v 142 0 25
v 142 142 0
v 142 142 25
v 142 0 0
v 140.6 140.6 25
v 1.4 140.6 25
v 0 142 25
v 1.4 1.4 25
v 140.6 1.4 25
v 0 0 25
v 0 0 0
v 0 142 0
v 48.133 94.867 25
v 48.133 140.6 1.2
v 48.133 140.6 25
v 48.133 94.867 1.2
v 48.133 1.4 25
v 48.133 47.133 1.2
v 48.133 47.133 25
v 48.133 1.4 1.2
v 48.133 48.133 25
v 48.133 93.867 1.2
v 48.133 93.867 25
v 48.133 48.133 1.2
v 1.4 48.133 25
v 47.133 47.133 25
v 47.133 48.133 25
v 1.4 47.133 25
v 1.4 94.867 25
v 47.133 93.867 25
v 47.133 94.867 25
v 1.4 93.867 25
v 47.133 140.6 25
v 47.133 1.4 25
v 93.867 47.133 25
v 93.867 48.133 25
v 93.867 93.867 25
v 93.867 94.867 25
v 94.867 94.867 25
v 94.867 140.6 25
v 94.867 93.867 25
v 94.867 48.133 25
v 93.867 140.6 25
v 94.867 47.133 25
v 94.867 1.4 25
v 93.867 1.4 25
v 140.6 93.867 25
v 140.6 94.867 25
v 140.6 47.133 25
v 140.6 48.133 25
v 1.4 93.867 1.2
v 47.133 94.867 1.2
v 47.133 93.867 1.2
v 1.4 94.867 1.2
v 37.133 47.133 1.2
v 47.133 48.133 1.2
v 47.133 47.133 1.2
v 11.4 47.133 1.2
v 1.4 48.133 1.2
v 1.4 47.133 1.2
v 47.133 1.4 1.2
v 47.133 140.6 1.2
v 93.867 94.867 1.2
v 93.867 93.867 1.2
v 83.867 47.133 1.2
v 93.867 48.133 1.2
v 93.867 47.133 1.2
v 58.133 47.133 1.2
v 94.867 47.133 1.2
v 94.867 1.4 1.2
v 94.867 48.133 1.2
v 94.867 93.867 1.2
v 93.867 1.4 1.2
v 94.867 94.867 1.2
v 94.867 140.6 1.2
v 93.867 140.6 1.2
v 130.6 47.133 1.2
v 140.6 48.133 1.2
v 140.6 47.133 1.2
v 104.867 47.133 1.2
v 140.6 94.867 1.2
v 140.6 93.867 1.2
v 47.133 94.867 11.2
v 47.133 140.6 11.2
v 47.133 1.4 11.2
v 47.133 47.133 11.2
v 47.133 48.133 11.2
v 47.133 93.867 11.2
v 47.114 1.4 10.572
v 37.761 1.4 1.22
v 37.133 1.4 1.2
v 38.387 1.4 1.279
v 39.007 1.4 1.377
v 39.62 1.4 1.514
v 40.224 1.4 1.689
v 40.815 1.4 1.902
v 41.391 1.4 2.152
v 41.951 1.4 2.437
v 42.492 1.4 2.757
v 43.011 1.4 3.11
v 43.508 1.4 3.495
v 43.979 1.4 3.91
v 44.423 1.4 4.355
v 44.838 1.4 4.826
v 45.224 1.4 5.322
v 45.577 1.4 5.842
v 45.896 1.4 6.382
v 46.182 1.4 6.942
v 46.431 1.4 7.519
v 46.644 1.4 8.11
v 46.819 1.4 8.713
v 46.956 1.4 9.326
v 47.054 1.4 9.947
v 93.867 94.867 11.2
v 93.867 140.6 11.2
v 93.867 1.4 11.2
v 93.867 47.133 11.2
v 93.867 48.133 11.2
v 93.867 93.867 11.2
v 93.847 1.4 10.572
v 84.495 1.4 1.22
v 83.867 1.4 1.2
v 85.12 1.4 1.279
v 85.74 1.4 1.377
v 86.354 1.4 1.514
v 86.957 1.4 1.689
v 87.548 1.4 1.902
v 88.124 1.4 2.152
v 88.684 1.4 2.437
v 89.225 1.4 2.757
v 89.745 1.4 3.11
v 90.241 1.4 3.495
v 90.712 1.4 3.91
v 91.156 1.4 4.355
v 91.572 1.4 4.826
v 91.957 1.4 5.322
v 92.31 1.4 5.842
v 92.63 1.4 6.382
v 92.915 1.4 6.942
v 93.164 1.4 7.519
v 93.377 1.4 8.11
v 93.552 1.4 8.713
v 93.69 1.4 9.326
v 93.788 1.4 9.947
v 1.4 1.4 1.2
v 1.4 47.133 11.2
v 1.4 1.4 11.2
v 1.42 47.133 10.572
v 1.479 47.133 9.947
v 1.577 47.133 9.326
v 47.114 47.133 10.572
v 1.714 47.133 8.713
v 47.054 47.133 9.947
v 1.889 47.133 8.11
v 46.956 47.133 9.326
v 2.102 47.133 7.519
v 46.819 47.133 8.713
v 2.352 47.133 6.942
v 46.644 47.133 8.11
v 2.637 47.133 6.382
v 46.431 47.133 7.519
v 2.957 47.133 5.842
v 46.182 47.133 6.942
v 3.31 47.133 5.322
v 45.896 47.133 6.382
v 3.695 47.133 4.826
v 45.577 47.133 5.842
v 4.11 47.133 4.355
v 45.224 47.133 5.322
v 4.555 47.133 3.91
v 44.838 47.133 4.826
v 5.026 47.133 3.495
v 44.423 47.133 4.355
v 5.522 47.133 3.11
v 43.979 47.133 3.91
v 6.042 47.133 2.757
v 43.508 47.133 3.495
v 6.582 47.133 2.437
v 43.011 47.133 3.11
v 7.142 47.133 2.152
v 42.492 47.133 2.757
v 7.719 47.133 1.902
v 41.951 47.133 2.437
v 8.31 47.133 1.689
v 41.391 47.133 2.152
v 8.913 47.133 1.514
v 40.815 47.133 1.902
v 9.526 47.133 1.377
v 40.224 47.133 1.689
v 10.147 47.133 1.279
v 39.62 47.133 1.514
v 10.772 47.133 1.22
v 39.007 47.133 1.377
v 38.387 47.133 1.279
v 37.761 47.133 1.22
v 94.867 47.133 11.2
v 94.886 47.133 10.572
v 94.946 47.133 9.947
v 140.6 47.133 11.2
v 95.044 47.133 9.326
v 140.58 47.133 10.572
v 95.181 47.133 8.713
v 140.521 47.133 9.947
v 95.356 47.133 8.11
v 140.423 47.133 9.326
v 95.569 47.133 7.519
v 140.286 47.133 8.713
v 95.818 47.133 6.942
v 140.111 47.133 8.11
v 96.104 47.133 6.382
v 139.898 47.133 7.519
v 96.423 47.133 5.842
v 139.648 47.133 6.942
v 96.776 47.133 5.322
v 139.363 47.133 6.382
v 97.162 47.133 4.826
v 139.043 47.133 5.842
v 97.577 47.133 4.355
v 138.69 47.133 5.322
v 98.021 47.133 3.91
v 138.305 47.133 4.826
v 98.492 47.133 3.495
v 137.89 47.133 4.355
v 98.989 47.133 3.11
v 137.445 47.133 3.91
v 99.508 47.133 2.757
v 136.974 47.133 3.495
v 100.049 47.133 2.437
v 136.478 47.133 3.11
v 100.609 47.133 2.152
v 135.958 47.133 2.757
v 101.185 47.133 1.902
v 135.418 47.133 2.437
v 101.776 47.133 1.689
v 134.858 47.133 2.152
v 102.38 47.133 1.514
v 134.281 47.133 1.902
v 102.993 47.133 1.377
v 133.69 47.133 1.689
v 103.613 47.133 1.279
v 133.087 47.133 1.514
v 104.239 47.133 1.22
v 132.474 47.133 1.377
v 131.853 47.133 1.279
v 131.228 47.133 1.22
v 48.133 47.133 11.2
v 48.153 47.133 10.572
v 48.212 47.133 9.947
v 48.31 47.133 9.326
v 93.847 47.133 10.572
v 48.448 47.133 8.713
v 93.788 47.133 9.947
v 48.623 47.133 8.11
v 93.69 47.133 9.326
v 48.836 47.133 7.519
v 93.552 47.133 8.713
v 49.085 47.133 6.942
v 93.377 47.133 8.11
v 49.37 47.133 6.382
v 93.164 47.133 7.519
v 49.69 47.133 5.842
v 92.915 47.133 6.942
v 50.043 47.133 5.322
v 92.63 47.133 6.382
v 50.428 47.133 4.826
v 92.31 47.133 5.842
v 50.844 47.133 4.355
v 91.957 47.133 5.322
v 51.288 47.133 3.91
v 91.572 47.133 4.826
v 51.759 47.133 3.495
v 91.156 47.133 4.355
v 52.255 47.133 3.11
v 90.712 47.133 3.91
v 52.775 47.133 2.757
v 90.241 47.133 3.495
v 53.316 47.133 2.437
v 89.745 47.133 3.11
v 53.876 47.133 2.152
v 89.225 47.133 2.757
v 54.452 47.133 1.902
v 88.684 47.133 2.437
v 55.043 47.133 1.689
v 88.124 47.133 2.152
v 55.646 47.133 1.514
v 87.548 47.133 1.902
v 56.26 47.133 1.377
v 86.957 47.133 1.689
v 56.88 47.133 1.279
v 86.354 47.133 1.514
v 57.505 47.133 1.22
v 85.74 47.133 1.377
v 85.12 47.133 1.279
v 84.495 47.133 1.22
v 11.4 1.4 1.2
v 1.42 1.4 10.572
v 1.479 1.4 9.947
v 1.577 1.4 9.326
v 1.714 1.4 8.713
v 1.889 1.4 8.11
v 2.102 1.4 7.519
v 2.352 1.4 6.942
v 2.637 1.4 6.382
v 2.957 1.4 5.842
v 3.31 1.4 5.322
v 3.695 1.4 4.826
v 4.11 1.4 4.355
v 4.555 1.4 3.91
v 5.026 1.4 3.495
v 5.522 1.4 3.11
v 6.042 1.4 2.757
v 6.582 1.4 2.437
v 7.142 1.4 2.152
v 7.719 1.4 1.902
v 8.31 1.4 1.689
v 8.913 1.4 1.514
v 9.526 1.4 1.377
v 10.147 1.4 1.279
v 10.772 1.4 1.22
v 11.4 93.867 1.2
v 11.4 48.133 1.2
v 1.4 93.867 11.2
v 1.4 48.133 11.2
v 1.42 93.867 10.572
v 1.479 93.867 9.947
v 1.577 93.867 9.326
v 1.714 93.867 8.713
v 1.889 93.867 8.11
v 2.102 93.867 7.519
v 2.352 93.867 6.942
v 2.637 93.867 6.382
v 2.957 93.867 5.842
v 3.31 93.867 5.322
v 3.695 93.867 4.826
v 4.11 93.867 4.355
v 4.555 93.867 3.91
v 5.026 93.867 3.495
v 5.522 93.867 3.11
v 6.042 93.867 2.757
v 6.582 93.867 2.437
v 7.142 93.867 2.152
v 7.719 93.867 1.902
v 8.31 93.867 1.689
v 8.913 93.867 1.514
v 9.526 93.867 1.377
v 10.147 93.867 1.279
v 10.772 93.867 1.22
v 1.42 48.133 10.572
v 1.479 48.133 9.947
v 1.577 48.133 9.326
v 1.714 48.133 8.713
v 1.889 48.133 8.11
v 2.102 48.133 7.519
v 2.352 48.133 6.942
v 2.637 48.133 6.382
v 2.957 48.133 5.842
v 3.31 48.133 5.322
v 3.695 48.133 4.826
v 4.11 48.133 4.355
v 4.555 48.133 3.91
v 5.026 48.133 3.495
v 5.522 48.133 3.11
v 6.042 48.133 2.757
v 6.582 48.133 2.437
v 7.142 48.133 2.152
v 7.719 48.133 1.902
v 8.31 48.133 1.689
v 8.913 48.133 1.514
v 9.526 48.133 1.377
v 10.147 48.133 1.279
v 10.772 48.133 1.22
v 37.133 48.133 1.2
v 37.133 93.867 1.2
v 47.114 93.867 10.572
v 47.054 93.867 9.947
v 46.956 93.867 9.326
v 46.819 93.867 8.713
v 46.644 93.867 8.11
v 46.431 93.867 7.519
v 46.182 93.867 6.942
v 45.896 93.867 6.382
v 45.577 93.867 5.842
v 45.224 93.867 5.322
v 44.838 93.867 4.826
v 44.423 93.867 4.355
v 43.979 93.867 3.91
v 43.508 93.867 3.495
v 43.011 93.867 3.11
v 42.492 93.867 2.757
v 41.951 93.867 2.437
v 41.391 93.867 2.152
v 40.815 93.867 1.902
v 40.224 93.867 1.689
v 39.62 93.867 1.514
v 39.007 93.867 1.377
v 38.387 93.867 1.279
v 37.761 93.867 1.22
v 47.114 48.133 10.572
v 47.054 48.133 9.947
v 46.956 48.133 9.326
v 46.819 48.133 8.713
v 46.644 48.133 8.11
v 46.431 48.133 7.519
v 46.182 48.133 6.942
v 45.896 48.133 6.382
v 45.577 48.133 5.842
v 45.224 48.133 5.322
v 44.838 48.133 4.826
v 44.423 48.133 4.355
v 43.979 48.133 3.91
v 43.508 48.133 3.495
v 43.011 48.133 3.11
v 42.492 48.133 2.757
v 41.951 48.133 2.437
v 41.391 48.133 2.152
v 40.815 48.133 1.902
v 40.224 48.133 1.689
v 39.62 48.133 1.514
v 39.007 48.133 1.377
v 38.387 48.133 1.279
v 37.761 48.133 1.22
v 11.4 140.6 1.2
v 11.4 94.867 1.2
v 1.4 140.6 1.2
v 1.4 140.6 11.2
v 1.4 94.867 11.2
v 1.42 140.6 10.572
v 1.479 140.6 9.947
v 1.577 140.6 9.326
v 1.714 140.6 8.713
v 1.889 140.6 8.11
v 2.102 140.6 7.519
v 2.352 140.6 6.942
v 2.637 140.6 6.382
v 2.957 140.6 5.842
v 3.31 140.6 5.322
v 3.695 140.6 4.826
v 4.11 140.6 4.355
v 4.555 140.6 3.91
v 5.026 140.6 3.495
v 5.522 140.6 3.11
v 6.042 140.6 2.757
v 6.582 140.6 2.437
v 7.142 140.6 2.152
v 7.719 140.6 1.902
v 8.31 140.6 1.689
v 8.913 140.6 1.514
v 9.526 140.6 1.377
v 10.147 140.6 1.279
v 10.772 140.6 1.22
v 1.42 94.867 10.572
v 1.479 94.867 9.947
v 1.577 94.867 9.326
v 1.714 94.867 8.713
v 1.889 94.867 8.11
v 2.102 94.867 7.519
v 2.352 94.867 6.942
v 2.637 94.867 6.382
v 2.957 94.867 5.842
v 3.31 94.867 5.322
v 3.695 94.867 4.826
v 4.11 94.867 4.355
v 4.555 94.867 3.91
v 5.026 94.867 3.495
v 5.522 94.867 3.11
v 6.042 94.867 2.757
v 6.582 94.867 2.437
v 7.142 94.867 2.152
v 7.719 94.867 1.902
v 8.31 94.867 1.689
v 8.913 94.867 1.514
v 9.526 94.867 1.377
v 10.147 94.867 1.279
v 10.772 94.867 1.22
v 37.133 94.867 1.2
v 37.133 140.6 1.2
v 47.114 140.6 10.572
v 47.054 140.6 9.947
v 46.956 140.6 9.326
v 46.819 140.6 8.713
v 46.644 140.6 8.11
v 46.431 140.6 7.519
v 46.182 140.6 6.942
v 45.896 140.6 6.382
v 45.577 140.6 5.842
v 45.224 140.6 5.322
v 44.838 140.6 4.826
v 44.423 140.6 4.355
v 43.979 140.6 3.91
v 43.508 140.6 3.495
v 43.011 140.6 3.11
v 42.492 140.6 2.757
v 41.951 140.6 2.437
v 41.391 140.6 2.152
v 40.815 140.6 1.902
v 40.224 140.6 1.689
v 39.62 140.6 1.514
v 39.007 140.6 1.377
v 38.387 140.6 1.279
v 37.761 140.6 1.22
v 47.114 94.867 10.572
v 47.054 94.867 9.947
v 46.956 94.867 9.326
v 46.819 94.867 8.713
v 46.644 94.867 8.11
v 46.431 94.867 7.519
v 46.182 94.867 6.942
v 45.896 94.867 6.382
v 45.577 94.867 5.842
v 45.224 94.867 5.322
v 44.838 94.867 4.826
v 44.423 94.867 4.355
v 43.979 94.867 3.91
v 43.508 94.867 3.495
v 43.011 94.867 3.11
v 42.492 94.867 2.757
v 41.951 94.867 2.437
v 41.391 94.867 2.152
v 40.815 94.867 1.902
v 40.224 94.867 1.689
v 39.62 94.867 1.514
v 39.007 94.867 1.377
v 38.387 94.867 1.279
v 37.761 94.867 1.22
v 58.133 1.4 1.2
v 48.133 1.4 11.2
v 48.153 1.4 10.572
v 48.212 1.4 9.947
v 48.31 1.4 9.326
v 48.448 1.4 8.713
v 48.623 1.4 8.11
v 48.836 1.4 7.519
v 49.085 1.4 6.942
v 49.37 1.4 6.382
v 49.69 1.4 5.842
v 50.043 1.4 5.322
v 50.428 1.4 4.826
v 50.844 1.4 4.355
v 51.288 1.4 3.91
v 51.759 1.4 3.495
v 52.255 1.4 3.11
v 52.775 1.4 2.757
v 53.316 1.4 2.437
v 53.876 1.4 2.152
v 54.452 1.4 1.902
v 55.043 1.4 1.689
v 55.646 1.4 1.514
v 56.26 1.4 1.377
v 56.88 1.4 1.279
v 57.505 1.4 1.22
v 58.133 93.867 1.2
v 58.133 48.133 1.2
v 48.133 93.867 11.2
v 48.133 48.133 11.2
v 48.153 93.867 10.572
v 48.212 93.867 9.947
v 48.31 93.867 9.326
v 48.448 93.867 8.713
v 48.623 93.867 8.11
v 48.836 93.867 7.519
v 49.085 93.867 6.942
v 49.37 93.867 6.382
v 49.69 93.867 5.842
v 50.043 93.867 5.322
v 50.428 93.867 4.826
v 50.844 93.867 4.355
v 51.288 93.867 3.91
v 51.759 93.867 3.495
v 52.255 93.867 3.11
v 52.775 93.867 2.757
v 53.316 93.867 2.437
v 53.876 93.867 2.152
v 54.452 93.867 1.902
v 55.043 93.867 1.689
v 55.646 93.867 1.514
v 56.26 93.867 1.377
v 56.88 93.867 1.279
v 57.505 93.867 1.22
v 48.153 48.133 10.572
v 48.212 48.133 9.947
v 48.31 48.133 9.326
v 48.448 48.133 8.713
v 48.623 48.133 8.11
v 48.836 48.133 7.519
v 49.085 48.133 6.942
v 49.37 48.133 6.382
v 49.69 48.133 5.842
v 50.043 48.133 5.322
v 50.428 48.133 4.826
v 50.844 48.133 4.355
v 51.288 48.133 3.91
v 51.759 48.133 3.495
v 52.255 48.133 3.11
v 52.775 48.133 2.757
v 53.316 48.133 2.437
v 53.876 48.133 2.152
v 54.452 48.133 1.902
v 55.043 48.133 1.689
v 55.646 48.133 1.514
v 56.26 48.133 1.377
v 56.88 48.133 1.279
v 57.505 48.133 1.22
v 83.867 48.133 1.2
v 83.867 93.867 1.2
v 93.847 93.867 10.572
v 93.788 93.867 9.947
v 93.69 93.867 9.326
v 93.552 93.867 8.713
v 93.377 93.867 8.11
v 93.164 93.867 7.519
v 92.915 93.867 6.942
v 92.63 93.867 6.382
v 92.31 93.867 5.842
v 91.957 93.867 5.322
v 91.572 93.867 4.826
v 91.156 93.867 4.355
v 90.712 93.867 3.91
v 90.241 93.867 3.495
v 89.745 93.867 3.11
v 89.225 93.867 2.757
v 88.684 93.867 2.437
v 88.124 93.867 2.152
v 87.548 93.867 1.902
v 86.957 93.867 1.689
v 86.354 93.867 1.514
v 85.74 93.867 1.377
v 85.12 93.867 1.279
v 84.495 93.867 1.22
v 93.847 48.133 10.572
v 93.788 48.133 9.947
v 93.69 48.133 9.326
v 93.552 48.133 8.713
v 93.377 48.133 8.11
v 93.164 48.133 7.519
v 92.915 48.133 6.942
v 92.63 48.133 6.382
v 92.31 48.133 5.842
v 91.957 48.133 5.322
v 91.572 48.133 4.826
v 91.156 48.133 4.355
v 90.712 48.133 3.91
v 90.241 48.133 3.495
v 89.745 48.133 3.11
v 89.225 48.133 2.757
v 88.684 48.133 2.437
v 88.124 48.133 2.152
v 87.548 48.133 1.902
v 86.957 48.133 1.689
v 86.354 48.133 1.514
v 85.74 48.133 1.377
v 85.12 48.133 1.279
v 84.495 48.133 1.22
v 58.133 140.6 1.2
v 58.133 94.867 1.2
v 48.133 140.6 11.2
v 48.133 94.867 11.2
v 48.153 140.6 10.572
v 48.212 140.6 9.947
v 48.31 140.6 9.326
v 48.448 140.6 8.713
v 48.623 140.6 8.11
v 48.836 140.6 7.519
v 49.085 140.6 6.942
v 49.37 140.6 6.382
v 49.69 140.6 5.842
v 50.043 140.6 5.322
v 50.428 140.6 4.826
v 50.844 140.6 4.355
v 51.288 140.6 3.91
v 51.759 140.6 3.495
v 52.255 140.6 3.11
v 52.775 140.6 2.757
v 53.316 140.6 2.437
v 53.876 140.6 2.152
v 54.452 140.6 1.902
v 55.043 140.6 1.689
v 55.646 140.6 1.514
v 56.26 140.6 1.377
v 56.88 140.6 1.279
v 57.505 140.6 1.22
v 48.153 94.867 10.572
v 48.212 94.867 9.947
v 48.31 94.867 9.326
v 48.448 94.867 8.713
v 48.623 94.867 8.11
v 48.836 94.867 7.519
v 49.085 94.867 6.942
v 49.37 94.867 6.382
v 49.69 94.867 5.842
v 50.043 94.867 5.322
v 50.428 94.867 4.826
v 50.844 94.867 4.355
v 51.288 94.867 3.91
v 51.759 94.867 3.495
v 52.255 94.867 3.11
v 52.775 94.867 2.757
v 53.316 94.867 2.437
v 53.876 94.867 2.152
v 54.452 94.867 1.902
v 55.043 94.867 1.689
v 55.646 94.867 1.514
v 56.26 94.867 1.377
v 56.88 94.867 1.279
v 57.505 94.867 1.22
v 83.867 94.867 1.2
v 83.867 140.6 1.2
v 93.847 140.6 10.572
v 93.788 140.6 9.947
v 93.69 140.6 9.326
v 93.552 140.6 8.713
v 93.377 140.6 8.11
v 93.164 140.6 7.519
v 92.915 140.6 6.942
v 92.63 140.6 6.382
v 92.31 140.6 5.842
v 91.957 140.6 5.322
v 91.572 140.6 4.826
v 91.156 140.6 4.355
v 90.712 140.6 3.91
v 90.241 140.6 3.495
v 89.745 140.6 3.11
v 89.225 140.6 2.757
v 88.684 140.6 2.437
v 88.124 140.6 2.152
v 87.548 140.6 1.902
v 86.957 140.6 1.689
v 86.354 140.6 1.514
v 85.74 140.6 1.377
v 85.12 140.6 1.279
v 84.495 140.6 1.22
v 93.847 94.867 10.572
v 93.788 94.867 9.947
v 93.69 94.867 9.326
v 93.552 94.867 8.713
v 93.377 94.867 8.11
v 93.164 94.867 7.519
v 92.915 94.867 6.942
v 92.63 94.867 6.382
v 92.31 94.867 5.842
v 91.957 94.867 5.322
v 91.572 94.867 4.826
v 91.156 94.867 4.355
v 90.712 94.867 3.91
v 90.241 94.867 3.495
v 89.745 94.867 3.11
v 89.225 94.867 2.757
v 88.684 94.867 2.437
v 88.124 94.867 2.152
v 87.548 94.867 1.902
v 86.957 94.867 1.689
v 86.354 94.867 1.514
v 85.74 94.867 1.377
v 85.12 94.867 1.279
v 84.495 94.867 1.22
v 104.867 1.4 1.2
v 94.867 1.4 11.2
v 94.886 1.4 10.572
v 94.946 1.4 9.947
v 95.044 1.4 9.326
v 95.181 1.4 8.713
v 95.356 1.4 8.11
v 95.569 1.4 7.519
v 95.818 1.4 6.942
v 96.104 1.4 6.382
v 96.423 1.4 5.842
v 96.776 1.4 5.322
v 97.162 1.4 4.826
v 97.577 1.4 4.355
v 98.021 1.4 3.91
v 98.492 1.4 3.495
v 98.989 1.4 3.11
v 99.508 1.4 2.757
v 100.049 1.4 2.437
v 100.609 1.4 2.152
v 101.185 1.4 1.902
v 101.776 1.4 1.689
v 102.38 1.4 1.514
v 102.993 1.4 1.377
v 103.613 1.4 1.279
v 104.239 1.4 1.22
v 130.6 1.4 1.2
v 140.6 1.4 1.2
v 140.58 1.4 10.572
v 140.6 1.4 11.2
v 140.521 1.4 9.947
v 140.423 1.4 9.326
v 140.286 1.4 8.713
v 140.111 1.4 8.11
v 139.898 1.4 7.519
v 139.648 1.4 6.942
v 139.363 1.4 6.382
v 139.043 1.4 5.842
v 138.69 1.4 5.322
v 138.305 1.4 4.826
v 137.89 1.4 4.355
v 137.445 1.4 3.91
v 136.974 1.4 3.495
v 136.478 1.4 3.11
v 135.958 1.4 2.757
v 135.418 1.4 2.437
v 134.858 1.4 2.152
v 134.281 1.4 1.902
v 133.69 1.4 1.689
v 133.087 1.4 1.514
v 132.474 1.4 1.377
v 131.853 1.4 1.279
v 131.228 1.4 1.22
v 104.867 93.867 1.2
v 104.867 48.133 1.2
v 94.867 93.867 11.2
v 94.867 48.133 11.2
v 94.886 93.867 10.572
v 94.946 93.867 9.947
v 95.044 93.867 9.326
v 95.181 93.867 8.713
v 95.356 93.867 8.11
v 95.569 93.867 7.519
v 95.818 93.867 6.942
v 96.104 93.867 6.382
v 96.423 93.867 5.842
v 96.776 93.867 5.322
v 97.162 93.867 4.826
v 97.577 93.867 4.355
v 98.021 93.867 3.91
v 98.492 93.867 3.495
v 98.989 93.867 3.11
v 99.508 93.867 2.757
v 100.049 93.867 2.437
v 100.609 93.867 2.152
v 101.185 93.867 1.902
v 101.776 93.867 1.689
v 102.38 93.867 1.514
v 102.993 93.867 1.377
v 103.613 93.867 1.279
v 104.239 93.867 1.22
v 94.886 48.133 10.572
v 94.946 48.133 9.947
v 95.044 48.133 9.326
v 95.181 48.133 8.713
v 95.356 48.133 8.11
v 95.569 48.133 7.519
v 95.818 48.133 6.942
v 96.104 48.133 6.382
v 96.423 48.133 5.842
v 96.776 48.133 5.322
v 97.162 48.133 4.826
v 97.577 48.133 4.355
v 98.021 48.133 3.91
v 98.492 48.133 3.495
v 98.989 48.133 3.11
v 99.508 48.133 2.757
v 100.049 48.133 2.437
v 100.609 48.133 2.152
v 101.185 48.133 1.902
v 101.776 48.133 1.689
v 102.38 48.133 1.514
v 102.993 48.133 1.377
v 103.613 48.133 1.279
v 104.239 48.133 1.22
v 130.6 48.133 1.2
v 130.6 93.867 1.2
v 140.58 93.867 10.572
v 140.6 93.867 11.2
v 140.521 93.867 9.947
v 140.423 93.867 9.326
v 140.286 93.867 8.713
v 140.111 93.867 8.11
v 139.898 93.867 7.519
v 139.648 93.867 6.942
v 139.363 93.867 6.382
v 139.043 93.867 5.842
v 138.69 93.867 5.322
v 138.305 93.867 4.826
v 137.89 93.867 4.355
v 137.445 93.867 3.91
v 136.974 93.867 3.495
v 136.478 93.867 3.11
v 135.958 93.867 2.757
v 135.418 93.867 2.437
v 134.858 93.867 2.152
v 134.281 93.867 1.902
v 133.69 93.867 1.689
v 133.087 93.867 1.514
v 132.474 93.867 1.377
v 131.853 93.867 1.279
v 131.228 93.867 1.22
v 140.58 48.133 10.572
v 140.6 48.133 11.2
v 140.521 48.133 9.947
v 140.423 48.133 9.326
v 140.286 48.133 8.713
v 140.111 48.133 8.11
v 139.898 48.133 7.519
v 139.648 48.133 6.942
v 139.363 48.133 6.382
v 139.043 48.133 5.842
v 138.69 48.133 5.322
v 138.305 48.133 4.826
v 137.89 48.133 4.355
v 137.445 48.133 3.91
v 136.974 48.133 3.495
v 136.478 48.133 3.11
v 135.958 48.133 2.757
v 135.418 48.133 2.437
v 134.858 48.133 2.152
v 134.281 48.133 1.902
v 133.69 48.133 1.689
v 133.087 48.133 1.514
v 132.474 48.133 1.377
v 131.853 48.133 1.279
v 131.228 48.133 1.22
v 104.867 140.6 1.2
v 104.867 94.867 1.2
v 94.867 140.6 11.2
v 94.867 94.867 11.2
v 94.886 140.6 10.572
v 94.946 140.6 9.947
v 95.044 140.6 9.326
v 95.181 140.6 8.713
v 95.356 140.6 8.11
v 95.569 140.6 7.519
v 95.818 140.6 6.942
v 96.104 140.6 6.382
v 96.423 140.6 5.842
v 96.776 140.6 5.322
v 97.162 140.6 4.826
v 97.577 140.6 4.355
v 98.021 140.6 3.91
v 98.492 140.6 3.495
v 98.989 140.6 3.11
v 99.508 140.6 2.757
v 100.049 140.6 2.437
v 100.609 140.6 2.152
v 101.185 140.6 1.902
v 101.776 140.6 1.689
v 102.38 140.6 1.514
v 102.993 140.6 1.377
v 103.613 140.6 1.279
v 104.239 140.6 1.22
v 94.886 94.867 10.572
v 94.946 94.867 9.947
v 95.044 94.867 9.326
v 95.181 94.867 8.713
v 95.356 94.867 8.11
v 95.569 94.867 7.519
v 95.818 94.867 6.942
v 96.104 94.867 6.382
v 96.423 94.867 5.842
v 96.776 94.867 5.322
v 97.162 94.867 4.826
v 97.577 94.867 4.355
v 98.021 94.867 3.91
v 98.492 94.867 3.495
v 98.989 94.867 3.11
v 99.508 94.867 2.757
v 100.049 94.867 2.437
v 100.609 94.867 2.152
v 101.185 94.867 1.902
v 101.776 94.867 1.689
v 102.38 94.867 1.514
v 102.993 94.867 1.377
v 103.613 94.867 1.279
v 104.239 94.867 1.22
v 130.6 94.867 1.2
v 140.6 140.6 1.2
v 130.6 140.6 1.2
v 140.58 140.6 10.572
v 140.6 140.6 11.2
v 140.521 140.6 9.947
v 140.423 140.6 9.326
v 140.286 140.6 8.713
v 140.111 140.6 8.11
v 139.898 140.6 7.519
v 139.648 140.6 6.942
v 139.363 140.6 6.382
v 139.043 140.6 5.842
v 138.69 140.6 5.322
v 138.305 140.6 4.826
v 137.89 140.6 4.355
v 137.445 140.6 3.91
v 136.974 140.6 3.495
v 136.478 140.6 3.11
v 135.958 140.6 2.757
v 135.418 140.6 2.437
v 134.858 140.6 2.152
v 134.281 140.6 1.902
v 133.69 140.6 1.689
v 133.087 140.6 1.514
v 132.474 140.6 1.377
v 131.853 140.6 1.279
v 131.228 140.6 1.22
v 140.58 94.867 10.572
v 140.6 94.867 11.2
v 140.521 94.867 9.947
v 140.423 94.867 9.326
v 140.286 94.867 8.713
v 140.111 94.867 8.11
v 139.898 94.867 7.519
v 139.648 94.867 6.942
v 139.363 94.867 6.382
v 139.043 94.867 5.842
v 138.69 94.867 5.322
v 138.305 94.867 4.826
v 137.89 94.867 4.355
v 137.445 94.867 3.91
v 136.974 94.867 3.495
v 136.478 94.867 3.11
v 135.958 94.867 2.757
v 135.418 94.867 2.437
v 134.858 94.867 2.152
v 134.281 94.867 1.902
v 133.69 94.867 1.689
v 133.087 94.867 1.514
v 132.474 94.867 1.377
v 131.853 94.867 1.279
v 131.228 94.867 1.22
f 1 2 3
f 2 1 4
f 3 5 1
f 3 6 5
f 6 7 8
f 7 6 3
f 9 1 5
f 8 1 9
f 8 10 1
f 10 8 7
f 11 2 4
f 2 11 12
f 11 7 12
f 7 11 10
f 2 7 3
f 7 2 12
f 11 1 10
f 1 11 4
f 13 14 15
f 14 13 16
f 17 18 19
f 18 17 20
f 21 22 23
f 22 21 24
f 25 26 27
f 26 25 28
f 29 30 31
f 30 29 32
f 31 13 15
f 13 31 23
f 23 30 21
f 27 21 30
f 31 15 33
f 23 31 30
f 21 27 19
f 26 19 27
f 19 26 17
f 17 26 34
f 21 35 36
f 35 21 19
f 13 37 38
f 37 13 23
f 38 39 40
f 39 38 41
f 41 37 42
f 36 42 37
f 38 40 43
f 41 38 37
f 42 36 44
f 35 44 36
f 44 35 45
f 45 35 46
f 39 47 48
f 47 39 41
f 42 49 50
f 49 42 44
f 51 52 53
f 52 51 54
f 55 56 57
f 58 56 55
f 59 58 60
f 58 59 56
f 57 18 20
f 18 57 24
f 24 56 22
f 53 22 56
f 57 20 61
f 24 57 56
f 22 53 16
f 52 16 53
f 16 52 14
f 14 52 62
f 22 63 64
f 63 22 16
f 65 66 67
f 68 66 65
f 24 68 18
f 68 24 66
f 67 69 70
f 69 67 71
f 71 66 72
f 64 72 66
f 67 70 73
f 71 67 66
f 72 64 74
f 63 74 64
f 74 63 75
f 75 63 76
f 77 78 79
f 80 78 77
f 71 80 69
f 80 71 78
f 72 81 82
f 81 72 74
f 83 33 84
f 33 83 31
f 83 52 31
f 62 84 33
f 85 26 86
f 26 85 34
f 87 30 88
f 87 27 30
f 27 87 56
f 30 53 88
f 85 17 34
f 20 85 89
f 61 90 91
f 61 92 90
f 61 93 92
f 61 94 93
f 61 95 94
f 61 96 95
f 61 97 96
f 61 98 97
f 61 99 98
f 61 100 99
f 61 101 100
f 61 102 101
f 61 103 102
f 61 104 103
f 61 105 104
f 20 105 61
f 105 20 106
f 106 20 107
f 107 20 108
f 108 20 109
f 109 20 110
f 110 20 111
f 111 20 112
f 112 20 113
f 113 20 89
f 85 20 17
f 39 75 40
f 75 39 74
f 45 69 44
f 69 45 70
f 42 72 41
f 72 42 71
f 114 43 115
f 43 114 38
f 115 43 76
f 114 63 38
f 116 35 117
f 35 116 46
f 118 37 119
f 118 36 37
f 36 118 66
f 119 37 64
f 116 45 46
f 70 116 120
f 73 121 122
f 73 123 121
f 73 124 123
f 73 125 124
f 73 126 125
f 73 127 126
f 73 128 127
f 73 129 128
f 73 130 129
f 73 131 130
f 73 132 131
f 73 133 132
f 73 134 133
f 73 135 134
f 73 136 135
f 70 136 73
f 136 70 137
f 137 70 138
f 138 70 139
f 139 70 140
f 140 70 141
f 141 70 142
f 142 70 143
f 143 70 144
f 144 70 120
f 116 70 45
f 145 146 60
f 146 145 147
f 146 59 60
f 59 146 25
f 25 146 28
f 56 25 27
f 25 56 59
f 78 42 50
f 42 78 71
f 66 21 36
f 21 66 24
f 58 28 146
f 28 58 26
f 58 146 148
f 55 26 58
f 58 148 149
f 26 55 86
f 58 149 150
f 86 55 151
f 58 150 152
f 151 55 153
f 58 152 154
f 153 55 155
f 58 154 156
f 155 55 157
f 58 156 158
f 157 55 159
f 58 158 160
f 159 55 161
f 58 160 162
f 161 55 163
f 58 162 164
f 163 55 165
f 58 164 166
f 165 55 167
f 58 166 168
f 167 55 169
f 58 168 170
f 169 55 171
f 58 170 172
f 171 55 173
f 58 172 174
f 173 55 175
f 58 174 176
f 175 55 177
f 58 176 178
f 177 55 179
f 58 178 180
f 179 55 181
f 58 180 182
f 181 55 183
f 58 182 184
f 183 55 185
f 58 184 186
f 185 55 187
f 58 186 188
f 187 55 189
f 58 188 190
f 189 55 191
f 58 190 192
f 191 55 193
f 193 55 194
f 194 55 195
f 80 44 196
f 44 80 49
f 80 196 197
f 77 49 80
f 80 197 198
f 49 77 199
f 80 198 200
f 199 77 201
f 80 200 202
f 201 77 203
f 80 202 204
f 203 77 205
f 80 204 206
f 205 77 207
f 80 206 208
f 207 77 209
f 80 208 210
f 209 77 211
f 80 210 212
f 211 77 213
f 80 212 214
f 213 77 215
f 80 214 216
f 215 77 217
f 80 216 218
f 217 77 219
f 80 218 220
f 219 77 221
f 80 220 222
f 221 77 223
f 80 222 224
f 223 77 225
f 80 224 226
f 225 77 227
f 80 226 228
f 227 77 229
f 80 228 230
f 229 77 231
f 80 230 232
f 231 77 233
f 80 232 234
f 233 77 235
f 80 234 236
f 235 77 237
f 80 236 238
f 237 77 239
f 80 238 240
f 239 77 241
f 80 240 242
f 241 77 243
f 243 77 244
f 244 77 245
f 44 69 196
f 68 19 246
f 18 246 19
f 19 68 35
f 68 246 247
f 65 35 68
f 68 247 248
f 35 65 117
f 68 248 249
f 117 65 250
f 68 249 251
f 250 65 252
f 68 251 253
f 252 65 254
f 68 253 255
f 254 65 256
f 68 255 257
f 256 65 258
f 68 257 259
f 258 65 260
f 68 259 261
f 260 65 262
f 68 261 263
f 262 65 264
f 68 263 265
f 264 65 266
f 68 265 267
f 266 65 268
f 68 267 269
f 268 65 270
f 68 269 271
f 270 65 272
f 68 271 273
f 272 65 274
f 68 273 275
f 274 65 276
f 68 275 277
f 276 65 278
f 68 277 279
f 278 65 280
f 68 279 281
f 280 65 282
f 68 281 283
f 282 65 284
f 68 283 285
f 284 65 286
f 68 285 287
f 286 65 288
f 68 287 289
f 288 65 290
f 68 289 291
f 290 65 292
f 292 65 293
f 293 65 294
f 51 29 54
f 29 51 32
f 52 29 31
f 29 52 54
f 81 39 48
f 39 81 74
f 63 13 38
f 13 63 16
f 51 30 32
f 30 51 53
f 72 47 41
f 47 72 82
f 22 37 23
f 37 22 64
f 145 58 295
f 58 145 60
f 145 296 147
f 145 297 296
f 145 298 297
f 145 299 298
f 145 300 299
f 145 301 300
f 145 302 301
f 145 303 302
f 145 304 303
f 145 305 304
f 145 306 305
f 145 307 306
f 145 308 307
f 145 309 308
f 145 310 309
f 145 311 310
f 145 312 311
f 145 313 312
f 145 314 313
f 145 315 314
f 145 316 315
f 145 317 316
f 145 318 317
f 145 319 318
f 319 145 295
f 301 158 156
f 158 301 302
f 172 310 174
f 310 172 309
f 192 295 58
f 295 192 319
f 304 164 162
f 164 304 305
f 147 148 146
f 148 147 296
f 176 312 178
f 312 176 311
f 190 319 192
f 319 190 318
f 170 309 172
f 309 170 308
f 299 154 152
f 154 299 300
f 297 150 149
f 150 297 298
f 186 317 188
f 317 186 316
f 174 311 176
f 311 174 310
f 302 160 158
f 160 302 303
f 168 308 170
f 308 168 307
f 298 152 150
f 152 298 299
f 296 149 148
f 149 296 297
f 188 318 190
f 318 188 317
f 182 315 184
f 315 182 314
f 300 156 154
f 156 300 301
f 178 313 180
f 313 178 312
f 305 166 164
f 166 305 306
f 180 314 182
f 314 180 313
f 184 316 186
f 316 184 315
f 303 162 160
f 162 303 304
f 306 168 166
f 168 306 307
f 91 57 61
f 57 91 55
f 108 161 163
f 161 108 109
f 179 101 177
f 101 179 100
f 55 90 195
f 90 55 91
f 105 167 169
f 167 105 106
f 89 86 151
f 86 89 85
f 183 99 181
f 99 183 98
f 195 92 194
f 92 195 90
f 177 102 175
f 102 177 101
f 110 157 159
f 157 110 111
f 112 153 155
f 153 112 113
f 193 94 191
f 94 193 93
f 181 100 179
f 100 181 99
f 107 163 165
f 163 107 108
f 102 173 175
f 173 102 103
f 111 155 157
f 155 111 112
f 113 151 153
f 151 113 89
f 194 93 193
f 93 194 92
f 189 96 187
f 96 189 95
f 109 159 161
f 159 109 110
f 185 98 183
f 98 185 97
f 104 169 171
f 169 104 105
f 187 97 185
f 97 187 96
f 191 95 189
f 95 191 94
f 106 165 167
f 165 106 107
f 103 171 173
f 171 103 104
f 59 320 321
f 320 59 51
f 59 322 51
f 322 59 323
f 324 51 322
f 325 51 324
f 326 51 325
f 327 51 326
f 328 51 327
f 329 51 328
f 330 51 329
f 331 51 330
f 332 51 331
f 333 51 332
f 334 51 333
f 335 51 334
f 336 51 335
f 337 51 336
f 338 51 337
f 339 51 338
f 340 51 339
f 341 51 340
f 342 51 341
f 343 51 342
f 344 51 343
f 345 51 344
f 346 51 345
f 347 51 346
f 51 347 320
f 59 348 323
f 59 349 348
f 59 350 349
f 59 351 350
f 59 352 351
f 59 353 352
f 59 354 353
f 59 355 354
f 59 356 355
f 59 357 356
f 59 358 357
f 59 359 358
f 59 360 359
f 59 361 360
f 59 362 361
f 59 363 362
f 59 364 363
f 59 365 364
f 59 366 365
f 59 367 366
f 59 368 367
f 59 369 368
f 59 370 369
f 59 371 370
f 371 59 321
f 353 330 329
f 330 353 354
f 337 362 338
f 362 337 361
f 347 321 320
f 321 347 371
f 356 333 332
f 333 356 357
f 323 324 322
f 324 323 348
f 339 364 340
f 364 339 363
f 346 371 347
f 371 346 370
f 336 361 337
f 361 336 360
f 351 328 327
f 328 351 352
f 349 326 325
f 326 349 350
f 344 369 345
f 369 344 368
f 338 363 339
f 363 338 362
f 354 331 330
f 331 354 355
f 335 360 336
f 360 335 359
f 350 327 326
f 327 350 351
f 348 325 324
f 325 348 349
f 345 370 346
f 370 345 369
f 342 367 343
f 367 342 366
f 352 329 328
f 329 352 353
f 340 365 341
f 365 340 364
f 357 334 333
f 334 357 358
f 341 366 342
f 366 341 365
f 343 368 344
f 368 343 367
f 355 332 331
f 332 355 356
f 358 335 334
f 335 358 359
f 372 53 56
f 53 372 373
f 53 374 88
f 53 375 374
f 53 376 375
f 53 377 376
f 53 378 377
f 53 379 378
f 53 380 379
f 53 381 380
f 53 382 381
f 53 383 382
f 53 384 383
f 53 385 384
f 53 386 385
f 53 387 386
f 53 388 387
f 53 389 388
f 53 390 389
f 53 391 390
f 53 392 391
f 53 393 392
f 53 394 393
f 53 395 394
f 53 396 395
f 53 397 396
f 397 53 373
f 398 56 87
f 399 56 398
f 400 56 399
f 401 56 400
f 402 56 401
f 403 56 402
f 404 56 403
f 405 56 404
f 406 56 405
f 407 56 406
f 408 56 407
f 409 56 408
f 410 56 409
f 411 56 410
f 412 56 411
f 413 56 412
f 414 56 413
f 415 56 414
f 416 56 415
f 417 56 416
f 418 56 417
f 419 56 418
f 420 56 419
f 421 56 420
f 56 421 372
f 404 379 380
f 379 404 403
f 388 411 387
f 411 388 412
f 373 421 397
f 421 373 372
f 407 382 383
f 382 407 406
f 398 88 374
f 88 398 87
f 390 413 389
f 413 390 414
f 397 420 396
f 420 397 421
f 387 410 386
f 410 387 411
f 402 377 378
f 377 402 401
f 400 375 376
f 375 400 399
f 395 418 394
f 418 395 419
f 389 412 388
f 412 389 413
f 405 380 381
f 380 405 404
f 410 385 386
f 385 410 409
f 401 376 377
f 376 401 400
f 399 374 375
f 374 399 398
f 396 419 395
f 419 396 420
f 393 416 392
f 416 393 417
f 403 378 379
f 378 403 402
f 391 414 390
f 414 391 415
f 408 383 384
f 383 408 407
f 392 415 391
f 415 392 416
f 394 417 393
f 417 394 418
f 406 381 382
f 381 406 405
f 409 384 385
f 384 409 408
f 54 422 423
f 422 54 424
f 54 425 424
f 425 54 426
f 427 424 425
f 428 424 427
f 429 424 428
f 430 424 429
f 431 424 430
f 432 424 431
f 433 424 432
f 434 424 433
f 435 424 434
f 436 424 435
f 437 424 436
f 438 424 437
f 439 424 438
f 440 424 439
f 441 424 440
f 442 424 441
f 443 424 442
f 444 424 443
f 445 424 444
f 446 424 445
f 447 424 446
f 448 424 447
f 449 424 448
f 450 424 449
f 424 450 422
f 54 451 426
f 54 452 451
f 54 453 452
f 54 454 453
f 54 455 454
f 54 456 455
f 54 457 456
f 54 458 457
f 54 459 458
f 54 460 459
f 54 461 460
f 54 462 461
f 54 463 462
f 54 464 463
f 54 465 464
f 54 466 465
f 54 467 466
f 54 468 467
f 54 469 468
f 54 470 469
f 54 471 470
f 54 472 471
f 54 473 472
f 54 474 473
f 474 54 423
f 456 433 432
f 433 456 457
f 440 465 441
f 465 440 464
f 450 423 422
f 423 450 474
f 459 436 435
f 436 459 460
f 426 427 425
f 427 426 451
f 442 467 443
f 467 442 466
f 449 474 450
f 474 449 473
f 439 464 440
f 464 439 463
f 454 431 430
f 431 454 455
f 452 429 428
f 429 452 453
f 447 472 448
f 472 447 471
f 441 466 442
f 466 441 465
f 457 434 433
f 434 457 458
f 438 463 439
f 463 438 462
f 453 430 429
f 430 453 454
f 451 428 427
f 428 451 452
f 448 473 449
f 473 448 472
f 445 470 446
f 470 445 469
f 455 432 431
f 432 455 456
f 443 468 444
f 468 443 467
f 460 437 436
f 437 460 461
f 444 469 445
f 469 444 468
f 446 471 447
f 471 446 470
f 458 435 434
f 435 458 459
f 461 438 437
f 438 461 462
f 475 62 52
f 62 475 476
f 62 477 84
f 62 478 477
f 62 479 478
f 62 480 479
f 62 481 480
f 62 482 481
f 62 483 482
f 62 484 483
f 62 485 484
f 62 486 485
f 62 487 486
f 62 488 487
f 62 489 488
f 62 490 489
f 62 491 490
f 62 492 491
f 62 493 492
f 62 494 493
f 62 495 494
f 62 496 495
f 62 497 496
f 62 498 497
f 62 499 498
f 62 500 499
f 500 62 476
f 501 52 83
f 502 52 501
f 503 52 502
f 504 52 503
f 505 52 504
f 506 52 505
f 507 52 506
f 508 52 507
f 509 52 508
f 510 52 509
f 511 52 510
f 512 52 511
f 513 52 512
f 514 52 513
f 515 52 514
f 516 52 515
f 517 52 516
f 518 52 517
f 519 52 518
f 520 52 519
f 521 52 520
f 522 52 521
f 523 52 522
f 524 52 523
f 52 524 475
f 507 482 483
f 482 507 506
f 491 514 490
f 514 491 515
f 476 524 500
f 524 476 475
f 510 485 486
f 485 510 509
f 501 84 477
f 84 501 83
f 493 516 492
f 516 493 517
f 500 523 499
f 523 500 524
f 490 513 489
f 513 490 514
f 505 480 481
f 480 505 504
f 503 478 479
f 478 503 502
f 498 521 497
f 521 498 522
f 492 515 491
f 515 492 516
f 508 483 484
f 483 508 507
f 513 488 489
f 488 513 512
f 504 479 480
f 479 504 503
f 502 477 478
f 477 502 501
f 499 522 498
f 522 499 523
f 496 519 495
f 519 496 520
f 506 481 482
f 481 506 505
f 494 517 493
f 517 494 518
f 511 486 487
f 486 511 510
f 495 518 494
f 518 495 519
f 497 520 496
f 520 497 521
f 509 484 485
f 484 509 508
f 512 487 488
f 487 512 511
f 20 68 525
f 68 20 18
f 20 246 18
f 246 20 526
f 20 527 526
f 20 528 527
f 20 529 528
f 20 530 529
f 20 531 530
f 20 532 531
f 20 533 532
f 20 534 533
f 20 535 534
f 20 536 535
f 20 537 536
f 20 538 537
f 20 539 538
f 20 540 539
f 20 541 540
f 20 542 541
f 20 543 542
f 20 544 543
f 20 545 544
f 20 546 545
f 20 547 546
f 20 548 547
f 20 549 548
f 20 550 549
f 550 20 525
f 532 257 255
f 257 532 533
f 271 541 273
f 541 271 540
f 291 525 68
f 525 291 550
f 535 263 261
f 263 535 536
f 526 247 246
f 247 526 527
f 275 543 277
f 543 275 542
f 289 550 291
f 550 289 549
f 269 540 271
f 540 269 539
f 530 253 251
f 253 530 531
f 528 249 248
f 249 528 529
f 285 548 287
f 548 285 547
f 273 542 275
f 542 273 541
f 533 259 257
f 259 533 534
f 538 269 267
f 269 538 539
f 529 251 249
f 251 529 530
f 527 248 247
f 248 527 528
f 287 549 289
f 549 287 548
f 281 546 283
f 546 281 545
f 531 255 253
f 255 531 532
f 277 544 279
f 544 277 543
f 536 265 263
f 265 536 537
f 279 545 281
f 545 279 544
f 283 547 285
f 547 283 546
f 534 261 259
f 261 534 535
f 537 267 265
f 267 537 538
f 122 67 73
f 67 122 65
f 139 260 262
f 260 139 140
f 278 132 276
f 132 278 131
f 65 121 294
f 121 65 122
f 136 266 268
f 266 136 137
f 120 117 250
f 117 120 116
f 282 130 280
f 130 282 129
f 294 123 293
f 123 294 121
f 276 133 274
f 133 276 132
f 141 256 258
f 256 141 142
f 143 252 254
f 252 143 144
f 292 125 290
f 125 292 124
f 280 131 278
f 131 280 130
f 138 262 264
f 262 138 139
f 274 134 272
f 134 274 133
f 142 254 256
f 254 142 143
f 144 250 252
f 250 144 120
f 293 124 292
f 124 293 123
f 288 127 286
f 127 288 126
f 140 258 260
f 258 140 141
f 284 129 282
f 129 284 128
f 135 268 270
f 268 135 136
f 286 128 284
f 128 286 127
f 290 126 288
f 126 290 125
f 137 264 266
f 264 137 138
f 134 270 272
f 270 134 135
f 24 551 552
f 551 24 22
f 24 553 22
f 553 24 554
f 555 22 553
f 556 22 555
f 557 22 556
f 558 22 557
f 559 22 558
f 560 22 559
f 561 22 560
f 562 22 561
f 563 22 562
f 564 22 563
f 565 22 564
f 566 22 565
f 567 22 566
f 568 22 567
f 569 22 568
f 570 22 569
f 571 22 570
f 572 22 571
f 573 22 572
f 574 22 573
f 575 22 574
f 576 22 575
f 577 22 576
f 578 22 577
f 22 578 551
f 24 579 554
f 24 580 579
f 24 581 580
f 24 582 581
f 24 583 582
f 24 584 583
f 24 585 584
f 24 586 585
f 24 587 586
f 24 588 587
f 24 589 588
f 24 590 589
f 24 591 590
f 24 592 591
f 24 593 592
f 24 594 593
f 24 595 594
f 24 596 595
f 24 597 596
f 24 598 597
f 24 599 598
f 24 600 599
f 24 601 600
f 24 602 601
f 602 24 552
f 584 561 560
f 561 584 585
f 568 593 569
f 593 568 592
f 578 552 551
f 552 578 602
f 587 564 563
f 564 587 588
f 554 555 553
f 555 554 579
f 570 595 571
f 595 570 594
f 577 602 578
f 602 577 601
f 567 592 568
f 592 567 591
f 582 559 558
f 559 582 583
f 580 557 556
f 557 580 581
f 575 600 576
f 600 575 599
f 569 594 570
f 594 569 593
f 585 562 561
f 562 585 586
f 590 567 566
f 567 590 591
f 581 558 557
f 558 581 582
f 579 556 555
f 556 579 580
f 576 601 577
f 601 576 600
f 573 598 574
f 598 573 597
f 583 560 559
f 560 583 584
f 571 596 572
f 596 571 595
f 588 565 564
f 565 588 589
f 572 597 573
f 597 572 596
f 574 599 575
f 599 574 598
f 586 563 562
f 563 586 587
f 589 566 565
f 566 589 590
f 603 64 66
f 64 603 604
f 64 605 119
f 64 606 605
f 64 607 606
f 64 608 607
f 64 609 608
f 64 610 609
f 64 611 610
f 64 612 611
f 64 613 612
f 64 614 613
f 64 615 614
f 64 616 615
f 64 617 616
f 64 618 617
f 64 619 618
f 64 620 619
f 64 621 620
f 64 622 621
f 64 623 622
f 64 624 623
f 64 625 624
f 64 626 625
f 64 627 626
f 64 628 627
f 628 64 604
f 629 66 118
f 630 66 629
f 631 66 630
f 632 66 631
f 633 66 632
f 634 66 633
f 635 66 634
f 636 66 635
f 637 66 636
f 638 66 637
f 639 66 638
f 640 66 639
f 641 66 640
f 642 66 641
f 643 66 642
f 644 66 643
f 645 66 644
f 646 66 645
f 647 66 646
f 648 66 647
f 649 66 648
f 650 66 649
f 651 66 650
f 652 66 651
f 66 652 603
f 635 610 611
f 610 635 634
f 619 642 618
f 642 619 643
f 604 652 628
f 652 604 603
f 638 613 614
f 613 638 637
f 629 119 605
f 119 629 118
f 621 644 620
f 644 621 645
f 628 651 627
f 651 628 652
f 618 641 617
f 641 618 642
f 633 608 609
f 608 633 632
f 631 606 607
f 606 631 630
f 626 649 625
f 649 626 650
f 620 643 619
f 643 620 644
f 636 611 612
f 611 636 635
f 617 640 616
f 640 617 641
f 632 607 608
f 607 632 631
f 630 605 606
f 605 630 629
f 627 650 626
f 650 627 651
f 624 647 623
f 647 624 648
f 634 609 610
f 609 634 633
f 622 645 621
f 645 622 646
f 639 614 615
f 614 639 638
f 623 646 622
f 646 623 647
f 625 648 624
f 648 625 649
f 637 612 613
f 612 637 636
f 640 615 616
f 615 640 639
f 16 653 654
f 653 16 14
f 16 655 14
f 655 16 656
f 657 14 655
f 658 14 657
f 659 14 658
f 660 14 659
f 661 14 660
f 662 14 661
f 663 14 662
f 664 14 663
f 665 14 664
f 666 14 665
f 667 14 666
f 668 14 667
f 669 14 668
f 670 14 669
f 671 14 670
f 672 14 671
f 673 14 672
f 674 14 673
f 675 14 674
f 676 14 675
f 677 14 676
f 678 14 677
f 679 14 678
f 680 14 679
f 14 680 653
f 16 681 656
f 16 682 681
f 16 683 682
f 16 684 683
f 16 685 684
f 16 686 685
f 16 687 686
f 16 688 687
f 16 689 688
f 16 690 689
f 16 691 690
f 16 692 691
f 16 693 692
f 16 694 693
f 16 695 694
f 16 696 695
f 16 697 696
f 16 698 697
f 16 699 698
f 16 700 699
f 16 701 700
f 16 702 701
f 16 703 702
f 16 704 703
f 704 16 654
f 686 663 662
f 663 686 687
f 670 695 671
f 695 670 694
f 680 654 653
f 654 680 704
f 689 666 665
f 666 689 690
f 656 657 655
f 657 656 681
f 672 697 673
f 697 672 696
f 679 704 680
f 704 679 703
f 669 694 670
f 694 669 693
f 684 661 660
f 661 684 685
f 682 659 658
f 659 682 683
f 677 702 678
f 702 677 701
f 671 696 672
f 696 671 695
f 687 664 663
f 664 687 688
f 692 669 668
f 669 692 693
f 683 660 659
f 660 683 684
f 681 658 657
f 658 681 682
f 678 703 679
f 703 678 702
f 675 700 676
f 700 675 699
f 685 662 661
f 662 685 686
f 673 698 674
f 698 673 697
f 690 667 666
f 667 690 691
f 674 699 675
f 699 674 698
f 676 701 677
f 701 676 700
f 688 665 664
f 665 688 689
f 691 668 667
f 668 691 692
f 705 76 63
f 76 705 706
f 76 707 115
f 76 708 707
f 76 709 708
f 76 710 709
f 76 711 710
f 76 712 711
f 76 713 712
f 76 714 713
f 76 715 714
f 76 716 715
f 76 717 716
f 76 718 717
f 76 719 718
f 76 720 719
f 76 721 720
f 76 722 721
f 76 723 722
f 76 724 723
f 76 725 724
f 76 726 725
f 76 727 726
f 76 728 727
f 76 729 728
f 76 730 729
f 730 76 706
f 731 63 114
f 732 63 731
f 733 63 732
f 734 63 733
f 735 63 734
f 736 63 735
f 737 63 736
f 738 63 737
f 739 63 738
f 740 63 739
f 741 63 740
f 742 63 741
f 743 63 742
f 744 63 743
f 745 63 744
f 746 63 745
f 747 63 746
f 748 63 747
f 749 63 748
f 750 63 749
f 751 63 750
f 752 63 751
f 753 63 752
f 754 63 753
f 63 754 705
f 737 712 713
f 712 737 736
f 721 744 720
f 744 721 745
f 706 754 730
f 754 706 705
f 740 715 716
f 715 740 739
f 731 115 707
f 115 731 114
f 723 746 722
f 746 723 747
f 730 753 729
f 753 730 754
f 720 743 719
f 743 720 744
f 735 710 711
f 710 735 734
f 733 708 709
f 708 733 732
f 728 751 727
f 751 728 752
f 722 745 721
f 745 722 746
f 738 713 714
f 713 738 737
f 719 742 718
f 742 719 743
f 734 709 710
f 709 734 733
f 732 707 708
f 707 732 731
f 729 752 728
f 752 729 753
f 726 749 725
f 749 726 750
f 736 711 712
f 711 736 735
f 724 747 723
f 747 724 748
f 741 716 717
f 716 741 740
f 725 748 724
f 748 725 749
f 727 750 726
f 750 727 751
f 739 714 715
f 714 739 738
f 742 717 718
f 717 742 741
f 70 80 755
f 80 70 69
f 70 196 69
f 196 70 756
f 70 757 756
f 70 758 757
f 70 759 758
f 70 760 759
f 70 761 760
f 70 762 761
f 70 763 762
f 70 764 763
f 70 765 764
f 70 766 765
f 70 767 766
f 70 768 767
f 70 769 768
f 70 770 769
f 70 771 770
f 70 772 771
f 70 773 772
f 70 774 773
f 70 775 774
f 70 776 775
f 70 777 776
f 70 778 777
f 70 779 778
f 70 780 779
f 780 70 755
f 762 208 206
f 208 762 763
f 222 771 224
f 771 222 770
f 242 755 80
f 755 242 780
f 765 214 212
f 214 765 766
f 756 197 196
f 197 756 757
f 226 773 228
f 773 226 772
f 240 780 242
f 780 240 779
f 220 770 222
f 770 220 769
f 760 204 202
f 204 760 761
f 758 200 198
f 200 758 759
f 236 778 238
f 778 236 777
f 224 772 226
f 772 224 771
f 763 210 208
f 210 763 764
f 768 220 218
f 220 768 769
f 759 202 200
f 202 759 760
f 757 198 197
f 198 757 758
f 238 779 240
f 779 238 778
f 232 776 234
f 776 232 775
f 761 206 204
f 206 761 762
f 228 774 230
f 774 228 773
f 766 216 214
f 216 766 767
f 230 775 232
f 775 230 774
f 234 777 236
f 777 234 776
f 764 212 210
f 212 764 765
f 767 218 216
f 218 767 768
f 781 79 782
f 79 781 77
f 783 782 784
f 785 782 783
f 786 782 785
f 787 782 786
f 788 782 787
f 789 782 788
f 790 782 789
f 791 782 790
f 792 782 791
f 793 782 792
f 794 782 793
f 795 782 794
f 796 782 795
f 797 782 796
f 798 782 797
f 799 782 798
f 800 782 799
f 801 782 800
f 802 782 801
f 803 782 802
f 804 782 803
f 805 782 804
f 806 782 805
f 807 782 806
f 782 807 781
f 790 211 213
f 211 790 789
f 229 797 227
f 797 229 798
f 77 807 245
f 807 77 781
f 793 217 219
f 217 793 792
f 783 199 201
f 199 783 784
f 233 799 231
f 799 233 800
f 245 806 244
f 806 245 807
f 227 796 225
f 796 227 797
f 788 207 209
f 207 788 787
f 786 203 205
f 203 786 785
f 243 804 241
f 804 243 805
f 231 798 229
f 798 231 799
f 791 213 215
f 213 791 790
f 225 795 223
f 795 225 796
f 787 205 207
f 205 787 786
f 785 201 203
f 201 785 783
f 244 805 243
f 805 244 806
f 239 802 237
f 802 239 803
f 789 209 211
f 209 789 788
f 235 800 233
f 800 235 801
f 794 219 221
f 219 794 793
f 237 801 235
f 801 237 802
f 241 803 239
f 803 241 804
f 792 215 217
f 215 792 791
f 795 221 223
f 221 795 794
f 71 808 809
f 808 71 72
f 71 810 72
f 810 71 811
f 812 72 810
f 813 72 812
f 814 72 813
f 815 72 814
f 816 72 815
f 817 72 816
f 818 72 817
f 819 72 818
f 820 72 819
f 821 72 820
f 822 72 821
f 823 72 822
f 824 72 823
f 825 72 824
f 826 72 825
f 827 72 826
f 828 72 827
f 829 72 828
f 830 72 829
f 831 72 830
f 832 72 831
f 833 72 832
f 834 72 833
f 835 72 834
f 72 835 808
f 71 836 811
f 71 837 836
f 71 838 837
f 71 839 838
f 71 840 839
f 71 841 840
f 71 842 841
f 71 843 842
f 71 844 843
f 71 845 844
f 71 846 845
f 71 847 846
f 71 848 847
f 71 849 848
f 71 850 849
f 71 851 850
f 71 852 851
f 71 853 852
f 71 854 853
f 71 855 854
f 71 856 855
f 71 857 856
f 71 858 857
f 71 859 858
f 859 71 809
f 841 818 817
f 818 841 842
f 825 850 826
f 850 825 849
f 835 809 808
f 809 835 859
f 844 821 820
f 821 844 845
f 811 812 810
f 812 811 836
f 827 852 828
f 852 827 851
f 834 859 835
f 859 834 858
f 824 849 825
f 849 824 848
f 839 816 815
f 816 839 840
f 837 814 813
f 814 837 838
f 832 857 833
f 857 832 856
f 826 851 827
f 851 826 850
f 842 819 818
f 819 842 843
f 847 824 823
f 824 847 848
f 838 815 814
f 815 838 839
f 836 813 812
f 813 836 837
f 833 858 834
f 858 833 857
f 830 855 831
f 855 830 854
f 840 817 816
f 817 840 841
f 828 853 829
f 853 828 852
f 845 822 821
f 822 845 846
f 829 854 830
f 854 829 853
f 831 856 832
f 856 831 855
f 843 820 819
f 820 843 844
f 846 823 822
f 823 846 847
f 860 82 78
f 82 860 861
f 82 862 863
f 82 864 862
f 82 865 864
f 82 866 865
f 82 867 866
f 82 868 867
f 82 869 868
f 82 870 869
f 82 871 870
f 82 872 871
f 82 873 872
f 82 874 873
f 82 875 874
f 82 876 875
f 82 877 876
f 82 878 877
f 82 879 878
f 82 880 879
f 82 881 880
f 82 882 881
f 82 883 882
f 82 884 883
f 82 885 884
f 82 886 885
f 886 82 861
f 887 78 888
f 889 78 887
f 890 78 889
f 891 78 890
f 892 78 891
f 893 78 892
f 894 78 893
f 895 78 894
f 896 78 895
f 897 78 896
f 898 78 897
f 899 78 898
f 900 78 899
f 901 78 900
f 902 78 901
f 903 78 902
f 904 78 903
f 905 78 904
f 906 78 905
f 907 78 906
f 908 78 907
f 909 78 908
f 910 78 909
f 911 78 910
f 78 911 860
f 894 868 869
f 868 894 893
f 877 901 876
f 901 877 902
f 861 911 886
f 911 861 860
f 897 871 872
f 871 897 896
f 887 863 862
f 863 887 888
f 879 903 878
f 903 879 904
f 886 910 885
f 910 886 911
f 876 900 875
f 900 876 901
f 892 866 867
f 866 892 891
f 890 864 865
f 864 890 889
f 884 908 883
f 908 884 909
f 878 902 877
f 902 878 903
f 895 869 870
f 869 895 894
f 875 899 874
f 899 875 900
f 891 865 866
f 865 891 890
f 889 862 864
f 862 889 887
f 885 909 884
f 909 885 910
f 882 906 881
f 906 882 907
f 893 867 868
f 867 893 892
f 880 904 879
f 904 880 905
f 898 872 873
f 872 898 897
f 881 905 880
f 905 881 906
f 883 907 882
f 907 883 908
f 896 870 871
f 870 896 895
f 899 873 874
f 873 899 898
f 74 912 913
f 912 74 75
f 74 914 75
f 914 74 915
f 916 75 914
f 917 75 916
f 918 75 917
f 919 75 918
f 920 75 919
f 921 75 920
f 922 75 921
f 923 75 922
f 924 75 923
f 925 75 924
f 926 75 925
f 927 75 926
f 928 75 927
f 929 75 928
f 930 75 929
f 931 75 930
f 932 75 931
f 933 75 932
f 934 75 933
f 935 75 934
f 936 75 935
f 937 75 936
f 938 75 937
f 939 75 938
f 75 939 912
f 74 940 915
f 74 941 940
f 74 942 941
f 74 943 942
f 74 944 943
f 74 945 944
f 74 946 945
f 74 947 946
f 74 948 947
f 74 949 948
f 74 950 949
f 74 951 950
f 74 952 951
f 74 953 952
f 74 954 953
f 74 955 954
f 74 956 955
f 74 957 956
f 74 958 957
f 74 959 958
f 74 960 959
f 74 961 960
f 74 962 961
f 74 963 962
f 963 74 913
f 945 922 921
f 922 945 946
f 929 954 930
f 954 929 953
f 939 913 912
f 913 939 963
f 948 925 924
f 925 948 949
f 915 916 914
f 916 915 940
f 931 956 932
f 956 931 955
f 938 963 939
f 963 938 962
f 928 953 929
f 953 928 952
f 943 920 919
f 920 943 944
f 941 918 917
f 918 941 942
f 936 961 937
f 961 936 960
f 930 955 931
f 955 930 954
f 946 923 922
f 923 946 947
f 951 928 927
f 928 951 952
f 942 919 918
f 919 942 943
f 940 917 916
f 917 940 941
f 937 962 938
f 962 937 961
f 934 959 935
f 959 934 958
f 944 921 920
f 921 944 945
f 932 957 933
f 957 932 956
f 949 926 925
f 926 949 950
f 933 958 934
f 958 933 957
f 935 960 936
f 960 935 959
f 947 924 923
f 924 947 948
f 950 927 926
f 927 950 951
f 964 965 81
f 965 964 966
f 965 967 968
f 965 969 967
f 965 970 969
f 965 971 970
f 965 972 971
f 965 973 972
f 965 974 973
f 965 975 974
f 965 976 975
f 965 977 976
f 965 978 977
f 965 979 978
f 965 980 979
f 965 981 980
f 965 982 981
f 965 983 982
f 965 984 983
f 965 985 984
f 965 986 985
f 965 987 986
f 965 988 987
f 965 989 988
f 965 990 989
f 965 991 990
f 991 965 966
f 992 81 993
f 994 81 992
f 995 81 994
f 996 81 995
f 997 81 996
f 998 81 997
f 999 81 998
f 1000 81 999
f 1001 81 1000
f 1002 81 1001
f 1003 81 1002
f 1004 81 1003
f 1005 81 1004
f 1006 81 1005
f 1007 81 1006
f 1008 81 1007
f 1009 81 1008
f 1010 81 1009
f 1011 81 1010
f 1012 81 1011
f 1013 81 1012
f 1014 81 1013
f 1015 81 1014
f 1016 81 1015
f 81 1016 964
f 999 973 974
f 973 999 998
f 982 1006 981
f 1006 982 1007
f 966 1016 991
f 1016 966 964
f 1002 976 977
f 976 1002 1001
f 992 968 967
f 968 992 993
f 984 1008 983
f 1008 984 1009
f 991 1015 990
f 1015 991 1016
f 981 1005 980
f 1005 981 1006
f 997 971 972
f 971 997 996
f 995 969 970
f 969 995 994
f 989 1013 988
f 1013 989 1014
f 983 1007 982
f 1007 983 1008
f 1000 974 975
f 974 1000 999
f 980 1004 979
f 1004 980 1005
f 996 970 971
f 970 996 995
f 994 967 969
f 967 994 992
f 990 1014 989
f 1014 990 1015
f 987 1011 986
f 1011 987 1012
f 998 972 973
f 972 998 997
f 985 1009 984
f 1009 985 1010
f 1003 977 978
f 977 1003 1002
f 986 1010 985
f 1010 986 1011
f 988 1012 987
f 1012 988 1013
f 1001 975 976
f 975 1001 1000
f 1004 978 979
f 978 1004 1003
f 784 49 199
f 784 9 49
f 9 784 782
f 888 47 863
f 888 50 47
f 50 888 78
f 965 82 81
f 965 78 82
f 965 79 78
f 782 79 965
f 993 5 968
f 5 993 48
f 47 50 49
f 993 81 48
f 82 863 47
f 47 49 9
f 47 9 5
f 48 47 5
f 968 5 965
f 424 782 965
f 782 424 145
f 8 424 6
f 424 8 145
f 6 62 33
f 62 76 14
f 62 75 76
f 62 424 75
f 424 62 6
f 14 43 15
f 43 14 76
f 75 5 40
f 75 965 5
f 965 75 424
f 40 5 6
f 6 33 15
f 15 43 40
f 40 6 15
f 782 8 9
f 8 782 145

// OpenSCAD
include <boardgame_insert_toolkit_lib.2.scad>;

// determines whether lids are output.
g_b_print_lid = true;

// determines whether boxes are output.
g_b_print_box = true; 

// Focus on one box
g_isolated_print_box = ""; 

// Used to visualize how all of the boxes fit together. 
g_b_visualization = false;          
        
// this is the outer wall thickness. 
//Default = 1.5mm
g_wall_thickness = 1.2;

// The tolerance value is extra space put between planes of the lid and box that fit together.
// Increase the tolerance to loosen the fit and decrease it to tighten it.
//
// Note that the tolerance is applied exclusively to the lid.
// So if the lid is too tight or too loose, change this value ( up for looser fit, down for tighter fit ) and 
// you only need to reprint the lid.
// 
// The exception is the stackable box, where the bottom of the box is the lid of the box below,
// in which case the tolerance also affects that box bottom.
//
g_tolerance = 0.15;

// This adjusts the position of the lid detents downward. 
// The larger the value, the bigger the gap between the lid and the box.
g_tolerance_detents_pos = 0.1;

aw_box_x = 142.0; // 284 / 2
aw_box_y = 142.0; //
aw_box_z = 25.0;

aw_compartment_size = (aw_box_x - 4 * g_wall_thickness) / 3;

data =
  [
    [
      "3x3 box",
      [
        [ BOX_SIZE_XYZ, [aw_box_x, aw_box_y, aw_box_z] ],
        [ BOX_NO_LID_B, t],
        [
          BOX_COMPONENT,
          [
            [ CMP_SHAPE, FILLET ],
            [ CMP_NUM_COMPARTMENTS_XY, [3, 3] ],
            [
              CMP_COMPARTMENT_SIZE_XYZ,
              [
                aw_compartment_size,
                aw_compartment_size,
                aw_box_z - 1 * g_wall_thickness
              ]
            ],
            [ POSITION_XY, [ CENTER, CENTER ] ],
          ]
        ],
      ]
    ]
  ];


MakeAll();
